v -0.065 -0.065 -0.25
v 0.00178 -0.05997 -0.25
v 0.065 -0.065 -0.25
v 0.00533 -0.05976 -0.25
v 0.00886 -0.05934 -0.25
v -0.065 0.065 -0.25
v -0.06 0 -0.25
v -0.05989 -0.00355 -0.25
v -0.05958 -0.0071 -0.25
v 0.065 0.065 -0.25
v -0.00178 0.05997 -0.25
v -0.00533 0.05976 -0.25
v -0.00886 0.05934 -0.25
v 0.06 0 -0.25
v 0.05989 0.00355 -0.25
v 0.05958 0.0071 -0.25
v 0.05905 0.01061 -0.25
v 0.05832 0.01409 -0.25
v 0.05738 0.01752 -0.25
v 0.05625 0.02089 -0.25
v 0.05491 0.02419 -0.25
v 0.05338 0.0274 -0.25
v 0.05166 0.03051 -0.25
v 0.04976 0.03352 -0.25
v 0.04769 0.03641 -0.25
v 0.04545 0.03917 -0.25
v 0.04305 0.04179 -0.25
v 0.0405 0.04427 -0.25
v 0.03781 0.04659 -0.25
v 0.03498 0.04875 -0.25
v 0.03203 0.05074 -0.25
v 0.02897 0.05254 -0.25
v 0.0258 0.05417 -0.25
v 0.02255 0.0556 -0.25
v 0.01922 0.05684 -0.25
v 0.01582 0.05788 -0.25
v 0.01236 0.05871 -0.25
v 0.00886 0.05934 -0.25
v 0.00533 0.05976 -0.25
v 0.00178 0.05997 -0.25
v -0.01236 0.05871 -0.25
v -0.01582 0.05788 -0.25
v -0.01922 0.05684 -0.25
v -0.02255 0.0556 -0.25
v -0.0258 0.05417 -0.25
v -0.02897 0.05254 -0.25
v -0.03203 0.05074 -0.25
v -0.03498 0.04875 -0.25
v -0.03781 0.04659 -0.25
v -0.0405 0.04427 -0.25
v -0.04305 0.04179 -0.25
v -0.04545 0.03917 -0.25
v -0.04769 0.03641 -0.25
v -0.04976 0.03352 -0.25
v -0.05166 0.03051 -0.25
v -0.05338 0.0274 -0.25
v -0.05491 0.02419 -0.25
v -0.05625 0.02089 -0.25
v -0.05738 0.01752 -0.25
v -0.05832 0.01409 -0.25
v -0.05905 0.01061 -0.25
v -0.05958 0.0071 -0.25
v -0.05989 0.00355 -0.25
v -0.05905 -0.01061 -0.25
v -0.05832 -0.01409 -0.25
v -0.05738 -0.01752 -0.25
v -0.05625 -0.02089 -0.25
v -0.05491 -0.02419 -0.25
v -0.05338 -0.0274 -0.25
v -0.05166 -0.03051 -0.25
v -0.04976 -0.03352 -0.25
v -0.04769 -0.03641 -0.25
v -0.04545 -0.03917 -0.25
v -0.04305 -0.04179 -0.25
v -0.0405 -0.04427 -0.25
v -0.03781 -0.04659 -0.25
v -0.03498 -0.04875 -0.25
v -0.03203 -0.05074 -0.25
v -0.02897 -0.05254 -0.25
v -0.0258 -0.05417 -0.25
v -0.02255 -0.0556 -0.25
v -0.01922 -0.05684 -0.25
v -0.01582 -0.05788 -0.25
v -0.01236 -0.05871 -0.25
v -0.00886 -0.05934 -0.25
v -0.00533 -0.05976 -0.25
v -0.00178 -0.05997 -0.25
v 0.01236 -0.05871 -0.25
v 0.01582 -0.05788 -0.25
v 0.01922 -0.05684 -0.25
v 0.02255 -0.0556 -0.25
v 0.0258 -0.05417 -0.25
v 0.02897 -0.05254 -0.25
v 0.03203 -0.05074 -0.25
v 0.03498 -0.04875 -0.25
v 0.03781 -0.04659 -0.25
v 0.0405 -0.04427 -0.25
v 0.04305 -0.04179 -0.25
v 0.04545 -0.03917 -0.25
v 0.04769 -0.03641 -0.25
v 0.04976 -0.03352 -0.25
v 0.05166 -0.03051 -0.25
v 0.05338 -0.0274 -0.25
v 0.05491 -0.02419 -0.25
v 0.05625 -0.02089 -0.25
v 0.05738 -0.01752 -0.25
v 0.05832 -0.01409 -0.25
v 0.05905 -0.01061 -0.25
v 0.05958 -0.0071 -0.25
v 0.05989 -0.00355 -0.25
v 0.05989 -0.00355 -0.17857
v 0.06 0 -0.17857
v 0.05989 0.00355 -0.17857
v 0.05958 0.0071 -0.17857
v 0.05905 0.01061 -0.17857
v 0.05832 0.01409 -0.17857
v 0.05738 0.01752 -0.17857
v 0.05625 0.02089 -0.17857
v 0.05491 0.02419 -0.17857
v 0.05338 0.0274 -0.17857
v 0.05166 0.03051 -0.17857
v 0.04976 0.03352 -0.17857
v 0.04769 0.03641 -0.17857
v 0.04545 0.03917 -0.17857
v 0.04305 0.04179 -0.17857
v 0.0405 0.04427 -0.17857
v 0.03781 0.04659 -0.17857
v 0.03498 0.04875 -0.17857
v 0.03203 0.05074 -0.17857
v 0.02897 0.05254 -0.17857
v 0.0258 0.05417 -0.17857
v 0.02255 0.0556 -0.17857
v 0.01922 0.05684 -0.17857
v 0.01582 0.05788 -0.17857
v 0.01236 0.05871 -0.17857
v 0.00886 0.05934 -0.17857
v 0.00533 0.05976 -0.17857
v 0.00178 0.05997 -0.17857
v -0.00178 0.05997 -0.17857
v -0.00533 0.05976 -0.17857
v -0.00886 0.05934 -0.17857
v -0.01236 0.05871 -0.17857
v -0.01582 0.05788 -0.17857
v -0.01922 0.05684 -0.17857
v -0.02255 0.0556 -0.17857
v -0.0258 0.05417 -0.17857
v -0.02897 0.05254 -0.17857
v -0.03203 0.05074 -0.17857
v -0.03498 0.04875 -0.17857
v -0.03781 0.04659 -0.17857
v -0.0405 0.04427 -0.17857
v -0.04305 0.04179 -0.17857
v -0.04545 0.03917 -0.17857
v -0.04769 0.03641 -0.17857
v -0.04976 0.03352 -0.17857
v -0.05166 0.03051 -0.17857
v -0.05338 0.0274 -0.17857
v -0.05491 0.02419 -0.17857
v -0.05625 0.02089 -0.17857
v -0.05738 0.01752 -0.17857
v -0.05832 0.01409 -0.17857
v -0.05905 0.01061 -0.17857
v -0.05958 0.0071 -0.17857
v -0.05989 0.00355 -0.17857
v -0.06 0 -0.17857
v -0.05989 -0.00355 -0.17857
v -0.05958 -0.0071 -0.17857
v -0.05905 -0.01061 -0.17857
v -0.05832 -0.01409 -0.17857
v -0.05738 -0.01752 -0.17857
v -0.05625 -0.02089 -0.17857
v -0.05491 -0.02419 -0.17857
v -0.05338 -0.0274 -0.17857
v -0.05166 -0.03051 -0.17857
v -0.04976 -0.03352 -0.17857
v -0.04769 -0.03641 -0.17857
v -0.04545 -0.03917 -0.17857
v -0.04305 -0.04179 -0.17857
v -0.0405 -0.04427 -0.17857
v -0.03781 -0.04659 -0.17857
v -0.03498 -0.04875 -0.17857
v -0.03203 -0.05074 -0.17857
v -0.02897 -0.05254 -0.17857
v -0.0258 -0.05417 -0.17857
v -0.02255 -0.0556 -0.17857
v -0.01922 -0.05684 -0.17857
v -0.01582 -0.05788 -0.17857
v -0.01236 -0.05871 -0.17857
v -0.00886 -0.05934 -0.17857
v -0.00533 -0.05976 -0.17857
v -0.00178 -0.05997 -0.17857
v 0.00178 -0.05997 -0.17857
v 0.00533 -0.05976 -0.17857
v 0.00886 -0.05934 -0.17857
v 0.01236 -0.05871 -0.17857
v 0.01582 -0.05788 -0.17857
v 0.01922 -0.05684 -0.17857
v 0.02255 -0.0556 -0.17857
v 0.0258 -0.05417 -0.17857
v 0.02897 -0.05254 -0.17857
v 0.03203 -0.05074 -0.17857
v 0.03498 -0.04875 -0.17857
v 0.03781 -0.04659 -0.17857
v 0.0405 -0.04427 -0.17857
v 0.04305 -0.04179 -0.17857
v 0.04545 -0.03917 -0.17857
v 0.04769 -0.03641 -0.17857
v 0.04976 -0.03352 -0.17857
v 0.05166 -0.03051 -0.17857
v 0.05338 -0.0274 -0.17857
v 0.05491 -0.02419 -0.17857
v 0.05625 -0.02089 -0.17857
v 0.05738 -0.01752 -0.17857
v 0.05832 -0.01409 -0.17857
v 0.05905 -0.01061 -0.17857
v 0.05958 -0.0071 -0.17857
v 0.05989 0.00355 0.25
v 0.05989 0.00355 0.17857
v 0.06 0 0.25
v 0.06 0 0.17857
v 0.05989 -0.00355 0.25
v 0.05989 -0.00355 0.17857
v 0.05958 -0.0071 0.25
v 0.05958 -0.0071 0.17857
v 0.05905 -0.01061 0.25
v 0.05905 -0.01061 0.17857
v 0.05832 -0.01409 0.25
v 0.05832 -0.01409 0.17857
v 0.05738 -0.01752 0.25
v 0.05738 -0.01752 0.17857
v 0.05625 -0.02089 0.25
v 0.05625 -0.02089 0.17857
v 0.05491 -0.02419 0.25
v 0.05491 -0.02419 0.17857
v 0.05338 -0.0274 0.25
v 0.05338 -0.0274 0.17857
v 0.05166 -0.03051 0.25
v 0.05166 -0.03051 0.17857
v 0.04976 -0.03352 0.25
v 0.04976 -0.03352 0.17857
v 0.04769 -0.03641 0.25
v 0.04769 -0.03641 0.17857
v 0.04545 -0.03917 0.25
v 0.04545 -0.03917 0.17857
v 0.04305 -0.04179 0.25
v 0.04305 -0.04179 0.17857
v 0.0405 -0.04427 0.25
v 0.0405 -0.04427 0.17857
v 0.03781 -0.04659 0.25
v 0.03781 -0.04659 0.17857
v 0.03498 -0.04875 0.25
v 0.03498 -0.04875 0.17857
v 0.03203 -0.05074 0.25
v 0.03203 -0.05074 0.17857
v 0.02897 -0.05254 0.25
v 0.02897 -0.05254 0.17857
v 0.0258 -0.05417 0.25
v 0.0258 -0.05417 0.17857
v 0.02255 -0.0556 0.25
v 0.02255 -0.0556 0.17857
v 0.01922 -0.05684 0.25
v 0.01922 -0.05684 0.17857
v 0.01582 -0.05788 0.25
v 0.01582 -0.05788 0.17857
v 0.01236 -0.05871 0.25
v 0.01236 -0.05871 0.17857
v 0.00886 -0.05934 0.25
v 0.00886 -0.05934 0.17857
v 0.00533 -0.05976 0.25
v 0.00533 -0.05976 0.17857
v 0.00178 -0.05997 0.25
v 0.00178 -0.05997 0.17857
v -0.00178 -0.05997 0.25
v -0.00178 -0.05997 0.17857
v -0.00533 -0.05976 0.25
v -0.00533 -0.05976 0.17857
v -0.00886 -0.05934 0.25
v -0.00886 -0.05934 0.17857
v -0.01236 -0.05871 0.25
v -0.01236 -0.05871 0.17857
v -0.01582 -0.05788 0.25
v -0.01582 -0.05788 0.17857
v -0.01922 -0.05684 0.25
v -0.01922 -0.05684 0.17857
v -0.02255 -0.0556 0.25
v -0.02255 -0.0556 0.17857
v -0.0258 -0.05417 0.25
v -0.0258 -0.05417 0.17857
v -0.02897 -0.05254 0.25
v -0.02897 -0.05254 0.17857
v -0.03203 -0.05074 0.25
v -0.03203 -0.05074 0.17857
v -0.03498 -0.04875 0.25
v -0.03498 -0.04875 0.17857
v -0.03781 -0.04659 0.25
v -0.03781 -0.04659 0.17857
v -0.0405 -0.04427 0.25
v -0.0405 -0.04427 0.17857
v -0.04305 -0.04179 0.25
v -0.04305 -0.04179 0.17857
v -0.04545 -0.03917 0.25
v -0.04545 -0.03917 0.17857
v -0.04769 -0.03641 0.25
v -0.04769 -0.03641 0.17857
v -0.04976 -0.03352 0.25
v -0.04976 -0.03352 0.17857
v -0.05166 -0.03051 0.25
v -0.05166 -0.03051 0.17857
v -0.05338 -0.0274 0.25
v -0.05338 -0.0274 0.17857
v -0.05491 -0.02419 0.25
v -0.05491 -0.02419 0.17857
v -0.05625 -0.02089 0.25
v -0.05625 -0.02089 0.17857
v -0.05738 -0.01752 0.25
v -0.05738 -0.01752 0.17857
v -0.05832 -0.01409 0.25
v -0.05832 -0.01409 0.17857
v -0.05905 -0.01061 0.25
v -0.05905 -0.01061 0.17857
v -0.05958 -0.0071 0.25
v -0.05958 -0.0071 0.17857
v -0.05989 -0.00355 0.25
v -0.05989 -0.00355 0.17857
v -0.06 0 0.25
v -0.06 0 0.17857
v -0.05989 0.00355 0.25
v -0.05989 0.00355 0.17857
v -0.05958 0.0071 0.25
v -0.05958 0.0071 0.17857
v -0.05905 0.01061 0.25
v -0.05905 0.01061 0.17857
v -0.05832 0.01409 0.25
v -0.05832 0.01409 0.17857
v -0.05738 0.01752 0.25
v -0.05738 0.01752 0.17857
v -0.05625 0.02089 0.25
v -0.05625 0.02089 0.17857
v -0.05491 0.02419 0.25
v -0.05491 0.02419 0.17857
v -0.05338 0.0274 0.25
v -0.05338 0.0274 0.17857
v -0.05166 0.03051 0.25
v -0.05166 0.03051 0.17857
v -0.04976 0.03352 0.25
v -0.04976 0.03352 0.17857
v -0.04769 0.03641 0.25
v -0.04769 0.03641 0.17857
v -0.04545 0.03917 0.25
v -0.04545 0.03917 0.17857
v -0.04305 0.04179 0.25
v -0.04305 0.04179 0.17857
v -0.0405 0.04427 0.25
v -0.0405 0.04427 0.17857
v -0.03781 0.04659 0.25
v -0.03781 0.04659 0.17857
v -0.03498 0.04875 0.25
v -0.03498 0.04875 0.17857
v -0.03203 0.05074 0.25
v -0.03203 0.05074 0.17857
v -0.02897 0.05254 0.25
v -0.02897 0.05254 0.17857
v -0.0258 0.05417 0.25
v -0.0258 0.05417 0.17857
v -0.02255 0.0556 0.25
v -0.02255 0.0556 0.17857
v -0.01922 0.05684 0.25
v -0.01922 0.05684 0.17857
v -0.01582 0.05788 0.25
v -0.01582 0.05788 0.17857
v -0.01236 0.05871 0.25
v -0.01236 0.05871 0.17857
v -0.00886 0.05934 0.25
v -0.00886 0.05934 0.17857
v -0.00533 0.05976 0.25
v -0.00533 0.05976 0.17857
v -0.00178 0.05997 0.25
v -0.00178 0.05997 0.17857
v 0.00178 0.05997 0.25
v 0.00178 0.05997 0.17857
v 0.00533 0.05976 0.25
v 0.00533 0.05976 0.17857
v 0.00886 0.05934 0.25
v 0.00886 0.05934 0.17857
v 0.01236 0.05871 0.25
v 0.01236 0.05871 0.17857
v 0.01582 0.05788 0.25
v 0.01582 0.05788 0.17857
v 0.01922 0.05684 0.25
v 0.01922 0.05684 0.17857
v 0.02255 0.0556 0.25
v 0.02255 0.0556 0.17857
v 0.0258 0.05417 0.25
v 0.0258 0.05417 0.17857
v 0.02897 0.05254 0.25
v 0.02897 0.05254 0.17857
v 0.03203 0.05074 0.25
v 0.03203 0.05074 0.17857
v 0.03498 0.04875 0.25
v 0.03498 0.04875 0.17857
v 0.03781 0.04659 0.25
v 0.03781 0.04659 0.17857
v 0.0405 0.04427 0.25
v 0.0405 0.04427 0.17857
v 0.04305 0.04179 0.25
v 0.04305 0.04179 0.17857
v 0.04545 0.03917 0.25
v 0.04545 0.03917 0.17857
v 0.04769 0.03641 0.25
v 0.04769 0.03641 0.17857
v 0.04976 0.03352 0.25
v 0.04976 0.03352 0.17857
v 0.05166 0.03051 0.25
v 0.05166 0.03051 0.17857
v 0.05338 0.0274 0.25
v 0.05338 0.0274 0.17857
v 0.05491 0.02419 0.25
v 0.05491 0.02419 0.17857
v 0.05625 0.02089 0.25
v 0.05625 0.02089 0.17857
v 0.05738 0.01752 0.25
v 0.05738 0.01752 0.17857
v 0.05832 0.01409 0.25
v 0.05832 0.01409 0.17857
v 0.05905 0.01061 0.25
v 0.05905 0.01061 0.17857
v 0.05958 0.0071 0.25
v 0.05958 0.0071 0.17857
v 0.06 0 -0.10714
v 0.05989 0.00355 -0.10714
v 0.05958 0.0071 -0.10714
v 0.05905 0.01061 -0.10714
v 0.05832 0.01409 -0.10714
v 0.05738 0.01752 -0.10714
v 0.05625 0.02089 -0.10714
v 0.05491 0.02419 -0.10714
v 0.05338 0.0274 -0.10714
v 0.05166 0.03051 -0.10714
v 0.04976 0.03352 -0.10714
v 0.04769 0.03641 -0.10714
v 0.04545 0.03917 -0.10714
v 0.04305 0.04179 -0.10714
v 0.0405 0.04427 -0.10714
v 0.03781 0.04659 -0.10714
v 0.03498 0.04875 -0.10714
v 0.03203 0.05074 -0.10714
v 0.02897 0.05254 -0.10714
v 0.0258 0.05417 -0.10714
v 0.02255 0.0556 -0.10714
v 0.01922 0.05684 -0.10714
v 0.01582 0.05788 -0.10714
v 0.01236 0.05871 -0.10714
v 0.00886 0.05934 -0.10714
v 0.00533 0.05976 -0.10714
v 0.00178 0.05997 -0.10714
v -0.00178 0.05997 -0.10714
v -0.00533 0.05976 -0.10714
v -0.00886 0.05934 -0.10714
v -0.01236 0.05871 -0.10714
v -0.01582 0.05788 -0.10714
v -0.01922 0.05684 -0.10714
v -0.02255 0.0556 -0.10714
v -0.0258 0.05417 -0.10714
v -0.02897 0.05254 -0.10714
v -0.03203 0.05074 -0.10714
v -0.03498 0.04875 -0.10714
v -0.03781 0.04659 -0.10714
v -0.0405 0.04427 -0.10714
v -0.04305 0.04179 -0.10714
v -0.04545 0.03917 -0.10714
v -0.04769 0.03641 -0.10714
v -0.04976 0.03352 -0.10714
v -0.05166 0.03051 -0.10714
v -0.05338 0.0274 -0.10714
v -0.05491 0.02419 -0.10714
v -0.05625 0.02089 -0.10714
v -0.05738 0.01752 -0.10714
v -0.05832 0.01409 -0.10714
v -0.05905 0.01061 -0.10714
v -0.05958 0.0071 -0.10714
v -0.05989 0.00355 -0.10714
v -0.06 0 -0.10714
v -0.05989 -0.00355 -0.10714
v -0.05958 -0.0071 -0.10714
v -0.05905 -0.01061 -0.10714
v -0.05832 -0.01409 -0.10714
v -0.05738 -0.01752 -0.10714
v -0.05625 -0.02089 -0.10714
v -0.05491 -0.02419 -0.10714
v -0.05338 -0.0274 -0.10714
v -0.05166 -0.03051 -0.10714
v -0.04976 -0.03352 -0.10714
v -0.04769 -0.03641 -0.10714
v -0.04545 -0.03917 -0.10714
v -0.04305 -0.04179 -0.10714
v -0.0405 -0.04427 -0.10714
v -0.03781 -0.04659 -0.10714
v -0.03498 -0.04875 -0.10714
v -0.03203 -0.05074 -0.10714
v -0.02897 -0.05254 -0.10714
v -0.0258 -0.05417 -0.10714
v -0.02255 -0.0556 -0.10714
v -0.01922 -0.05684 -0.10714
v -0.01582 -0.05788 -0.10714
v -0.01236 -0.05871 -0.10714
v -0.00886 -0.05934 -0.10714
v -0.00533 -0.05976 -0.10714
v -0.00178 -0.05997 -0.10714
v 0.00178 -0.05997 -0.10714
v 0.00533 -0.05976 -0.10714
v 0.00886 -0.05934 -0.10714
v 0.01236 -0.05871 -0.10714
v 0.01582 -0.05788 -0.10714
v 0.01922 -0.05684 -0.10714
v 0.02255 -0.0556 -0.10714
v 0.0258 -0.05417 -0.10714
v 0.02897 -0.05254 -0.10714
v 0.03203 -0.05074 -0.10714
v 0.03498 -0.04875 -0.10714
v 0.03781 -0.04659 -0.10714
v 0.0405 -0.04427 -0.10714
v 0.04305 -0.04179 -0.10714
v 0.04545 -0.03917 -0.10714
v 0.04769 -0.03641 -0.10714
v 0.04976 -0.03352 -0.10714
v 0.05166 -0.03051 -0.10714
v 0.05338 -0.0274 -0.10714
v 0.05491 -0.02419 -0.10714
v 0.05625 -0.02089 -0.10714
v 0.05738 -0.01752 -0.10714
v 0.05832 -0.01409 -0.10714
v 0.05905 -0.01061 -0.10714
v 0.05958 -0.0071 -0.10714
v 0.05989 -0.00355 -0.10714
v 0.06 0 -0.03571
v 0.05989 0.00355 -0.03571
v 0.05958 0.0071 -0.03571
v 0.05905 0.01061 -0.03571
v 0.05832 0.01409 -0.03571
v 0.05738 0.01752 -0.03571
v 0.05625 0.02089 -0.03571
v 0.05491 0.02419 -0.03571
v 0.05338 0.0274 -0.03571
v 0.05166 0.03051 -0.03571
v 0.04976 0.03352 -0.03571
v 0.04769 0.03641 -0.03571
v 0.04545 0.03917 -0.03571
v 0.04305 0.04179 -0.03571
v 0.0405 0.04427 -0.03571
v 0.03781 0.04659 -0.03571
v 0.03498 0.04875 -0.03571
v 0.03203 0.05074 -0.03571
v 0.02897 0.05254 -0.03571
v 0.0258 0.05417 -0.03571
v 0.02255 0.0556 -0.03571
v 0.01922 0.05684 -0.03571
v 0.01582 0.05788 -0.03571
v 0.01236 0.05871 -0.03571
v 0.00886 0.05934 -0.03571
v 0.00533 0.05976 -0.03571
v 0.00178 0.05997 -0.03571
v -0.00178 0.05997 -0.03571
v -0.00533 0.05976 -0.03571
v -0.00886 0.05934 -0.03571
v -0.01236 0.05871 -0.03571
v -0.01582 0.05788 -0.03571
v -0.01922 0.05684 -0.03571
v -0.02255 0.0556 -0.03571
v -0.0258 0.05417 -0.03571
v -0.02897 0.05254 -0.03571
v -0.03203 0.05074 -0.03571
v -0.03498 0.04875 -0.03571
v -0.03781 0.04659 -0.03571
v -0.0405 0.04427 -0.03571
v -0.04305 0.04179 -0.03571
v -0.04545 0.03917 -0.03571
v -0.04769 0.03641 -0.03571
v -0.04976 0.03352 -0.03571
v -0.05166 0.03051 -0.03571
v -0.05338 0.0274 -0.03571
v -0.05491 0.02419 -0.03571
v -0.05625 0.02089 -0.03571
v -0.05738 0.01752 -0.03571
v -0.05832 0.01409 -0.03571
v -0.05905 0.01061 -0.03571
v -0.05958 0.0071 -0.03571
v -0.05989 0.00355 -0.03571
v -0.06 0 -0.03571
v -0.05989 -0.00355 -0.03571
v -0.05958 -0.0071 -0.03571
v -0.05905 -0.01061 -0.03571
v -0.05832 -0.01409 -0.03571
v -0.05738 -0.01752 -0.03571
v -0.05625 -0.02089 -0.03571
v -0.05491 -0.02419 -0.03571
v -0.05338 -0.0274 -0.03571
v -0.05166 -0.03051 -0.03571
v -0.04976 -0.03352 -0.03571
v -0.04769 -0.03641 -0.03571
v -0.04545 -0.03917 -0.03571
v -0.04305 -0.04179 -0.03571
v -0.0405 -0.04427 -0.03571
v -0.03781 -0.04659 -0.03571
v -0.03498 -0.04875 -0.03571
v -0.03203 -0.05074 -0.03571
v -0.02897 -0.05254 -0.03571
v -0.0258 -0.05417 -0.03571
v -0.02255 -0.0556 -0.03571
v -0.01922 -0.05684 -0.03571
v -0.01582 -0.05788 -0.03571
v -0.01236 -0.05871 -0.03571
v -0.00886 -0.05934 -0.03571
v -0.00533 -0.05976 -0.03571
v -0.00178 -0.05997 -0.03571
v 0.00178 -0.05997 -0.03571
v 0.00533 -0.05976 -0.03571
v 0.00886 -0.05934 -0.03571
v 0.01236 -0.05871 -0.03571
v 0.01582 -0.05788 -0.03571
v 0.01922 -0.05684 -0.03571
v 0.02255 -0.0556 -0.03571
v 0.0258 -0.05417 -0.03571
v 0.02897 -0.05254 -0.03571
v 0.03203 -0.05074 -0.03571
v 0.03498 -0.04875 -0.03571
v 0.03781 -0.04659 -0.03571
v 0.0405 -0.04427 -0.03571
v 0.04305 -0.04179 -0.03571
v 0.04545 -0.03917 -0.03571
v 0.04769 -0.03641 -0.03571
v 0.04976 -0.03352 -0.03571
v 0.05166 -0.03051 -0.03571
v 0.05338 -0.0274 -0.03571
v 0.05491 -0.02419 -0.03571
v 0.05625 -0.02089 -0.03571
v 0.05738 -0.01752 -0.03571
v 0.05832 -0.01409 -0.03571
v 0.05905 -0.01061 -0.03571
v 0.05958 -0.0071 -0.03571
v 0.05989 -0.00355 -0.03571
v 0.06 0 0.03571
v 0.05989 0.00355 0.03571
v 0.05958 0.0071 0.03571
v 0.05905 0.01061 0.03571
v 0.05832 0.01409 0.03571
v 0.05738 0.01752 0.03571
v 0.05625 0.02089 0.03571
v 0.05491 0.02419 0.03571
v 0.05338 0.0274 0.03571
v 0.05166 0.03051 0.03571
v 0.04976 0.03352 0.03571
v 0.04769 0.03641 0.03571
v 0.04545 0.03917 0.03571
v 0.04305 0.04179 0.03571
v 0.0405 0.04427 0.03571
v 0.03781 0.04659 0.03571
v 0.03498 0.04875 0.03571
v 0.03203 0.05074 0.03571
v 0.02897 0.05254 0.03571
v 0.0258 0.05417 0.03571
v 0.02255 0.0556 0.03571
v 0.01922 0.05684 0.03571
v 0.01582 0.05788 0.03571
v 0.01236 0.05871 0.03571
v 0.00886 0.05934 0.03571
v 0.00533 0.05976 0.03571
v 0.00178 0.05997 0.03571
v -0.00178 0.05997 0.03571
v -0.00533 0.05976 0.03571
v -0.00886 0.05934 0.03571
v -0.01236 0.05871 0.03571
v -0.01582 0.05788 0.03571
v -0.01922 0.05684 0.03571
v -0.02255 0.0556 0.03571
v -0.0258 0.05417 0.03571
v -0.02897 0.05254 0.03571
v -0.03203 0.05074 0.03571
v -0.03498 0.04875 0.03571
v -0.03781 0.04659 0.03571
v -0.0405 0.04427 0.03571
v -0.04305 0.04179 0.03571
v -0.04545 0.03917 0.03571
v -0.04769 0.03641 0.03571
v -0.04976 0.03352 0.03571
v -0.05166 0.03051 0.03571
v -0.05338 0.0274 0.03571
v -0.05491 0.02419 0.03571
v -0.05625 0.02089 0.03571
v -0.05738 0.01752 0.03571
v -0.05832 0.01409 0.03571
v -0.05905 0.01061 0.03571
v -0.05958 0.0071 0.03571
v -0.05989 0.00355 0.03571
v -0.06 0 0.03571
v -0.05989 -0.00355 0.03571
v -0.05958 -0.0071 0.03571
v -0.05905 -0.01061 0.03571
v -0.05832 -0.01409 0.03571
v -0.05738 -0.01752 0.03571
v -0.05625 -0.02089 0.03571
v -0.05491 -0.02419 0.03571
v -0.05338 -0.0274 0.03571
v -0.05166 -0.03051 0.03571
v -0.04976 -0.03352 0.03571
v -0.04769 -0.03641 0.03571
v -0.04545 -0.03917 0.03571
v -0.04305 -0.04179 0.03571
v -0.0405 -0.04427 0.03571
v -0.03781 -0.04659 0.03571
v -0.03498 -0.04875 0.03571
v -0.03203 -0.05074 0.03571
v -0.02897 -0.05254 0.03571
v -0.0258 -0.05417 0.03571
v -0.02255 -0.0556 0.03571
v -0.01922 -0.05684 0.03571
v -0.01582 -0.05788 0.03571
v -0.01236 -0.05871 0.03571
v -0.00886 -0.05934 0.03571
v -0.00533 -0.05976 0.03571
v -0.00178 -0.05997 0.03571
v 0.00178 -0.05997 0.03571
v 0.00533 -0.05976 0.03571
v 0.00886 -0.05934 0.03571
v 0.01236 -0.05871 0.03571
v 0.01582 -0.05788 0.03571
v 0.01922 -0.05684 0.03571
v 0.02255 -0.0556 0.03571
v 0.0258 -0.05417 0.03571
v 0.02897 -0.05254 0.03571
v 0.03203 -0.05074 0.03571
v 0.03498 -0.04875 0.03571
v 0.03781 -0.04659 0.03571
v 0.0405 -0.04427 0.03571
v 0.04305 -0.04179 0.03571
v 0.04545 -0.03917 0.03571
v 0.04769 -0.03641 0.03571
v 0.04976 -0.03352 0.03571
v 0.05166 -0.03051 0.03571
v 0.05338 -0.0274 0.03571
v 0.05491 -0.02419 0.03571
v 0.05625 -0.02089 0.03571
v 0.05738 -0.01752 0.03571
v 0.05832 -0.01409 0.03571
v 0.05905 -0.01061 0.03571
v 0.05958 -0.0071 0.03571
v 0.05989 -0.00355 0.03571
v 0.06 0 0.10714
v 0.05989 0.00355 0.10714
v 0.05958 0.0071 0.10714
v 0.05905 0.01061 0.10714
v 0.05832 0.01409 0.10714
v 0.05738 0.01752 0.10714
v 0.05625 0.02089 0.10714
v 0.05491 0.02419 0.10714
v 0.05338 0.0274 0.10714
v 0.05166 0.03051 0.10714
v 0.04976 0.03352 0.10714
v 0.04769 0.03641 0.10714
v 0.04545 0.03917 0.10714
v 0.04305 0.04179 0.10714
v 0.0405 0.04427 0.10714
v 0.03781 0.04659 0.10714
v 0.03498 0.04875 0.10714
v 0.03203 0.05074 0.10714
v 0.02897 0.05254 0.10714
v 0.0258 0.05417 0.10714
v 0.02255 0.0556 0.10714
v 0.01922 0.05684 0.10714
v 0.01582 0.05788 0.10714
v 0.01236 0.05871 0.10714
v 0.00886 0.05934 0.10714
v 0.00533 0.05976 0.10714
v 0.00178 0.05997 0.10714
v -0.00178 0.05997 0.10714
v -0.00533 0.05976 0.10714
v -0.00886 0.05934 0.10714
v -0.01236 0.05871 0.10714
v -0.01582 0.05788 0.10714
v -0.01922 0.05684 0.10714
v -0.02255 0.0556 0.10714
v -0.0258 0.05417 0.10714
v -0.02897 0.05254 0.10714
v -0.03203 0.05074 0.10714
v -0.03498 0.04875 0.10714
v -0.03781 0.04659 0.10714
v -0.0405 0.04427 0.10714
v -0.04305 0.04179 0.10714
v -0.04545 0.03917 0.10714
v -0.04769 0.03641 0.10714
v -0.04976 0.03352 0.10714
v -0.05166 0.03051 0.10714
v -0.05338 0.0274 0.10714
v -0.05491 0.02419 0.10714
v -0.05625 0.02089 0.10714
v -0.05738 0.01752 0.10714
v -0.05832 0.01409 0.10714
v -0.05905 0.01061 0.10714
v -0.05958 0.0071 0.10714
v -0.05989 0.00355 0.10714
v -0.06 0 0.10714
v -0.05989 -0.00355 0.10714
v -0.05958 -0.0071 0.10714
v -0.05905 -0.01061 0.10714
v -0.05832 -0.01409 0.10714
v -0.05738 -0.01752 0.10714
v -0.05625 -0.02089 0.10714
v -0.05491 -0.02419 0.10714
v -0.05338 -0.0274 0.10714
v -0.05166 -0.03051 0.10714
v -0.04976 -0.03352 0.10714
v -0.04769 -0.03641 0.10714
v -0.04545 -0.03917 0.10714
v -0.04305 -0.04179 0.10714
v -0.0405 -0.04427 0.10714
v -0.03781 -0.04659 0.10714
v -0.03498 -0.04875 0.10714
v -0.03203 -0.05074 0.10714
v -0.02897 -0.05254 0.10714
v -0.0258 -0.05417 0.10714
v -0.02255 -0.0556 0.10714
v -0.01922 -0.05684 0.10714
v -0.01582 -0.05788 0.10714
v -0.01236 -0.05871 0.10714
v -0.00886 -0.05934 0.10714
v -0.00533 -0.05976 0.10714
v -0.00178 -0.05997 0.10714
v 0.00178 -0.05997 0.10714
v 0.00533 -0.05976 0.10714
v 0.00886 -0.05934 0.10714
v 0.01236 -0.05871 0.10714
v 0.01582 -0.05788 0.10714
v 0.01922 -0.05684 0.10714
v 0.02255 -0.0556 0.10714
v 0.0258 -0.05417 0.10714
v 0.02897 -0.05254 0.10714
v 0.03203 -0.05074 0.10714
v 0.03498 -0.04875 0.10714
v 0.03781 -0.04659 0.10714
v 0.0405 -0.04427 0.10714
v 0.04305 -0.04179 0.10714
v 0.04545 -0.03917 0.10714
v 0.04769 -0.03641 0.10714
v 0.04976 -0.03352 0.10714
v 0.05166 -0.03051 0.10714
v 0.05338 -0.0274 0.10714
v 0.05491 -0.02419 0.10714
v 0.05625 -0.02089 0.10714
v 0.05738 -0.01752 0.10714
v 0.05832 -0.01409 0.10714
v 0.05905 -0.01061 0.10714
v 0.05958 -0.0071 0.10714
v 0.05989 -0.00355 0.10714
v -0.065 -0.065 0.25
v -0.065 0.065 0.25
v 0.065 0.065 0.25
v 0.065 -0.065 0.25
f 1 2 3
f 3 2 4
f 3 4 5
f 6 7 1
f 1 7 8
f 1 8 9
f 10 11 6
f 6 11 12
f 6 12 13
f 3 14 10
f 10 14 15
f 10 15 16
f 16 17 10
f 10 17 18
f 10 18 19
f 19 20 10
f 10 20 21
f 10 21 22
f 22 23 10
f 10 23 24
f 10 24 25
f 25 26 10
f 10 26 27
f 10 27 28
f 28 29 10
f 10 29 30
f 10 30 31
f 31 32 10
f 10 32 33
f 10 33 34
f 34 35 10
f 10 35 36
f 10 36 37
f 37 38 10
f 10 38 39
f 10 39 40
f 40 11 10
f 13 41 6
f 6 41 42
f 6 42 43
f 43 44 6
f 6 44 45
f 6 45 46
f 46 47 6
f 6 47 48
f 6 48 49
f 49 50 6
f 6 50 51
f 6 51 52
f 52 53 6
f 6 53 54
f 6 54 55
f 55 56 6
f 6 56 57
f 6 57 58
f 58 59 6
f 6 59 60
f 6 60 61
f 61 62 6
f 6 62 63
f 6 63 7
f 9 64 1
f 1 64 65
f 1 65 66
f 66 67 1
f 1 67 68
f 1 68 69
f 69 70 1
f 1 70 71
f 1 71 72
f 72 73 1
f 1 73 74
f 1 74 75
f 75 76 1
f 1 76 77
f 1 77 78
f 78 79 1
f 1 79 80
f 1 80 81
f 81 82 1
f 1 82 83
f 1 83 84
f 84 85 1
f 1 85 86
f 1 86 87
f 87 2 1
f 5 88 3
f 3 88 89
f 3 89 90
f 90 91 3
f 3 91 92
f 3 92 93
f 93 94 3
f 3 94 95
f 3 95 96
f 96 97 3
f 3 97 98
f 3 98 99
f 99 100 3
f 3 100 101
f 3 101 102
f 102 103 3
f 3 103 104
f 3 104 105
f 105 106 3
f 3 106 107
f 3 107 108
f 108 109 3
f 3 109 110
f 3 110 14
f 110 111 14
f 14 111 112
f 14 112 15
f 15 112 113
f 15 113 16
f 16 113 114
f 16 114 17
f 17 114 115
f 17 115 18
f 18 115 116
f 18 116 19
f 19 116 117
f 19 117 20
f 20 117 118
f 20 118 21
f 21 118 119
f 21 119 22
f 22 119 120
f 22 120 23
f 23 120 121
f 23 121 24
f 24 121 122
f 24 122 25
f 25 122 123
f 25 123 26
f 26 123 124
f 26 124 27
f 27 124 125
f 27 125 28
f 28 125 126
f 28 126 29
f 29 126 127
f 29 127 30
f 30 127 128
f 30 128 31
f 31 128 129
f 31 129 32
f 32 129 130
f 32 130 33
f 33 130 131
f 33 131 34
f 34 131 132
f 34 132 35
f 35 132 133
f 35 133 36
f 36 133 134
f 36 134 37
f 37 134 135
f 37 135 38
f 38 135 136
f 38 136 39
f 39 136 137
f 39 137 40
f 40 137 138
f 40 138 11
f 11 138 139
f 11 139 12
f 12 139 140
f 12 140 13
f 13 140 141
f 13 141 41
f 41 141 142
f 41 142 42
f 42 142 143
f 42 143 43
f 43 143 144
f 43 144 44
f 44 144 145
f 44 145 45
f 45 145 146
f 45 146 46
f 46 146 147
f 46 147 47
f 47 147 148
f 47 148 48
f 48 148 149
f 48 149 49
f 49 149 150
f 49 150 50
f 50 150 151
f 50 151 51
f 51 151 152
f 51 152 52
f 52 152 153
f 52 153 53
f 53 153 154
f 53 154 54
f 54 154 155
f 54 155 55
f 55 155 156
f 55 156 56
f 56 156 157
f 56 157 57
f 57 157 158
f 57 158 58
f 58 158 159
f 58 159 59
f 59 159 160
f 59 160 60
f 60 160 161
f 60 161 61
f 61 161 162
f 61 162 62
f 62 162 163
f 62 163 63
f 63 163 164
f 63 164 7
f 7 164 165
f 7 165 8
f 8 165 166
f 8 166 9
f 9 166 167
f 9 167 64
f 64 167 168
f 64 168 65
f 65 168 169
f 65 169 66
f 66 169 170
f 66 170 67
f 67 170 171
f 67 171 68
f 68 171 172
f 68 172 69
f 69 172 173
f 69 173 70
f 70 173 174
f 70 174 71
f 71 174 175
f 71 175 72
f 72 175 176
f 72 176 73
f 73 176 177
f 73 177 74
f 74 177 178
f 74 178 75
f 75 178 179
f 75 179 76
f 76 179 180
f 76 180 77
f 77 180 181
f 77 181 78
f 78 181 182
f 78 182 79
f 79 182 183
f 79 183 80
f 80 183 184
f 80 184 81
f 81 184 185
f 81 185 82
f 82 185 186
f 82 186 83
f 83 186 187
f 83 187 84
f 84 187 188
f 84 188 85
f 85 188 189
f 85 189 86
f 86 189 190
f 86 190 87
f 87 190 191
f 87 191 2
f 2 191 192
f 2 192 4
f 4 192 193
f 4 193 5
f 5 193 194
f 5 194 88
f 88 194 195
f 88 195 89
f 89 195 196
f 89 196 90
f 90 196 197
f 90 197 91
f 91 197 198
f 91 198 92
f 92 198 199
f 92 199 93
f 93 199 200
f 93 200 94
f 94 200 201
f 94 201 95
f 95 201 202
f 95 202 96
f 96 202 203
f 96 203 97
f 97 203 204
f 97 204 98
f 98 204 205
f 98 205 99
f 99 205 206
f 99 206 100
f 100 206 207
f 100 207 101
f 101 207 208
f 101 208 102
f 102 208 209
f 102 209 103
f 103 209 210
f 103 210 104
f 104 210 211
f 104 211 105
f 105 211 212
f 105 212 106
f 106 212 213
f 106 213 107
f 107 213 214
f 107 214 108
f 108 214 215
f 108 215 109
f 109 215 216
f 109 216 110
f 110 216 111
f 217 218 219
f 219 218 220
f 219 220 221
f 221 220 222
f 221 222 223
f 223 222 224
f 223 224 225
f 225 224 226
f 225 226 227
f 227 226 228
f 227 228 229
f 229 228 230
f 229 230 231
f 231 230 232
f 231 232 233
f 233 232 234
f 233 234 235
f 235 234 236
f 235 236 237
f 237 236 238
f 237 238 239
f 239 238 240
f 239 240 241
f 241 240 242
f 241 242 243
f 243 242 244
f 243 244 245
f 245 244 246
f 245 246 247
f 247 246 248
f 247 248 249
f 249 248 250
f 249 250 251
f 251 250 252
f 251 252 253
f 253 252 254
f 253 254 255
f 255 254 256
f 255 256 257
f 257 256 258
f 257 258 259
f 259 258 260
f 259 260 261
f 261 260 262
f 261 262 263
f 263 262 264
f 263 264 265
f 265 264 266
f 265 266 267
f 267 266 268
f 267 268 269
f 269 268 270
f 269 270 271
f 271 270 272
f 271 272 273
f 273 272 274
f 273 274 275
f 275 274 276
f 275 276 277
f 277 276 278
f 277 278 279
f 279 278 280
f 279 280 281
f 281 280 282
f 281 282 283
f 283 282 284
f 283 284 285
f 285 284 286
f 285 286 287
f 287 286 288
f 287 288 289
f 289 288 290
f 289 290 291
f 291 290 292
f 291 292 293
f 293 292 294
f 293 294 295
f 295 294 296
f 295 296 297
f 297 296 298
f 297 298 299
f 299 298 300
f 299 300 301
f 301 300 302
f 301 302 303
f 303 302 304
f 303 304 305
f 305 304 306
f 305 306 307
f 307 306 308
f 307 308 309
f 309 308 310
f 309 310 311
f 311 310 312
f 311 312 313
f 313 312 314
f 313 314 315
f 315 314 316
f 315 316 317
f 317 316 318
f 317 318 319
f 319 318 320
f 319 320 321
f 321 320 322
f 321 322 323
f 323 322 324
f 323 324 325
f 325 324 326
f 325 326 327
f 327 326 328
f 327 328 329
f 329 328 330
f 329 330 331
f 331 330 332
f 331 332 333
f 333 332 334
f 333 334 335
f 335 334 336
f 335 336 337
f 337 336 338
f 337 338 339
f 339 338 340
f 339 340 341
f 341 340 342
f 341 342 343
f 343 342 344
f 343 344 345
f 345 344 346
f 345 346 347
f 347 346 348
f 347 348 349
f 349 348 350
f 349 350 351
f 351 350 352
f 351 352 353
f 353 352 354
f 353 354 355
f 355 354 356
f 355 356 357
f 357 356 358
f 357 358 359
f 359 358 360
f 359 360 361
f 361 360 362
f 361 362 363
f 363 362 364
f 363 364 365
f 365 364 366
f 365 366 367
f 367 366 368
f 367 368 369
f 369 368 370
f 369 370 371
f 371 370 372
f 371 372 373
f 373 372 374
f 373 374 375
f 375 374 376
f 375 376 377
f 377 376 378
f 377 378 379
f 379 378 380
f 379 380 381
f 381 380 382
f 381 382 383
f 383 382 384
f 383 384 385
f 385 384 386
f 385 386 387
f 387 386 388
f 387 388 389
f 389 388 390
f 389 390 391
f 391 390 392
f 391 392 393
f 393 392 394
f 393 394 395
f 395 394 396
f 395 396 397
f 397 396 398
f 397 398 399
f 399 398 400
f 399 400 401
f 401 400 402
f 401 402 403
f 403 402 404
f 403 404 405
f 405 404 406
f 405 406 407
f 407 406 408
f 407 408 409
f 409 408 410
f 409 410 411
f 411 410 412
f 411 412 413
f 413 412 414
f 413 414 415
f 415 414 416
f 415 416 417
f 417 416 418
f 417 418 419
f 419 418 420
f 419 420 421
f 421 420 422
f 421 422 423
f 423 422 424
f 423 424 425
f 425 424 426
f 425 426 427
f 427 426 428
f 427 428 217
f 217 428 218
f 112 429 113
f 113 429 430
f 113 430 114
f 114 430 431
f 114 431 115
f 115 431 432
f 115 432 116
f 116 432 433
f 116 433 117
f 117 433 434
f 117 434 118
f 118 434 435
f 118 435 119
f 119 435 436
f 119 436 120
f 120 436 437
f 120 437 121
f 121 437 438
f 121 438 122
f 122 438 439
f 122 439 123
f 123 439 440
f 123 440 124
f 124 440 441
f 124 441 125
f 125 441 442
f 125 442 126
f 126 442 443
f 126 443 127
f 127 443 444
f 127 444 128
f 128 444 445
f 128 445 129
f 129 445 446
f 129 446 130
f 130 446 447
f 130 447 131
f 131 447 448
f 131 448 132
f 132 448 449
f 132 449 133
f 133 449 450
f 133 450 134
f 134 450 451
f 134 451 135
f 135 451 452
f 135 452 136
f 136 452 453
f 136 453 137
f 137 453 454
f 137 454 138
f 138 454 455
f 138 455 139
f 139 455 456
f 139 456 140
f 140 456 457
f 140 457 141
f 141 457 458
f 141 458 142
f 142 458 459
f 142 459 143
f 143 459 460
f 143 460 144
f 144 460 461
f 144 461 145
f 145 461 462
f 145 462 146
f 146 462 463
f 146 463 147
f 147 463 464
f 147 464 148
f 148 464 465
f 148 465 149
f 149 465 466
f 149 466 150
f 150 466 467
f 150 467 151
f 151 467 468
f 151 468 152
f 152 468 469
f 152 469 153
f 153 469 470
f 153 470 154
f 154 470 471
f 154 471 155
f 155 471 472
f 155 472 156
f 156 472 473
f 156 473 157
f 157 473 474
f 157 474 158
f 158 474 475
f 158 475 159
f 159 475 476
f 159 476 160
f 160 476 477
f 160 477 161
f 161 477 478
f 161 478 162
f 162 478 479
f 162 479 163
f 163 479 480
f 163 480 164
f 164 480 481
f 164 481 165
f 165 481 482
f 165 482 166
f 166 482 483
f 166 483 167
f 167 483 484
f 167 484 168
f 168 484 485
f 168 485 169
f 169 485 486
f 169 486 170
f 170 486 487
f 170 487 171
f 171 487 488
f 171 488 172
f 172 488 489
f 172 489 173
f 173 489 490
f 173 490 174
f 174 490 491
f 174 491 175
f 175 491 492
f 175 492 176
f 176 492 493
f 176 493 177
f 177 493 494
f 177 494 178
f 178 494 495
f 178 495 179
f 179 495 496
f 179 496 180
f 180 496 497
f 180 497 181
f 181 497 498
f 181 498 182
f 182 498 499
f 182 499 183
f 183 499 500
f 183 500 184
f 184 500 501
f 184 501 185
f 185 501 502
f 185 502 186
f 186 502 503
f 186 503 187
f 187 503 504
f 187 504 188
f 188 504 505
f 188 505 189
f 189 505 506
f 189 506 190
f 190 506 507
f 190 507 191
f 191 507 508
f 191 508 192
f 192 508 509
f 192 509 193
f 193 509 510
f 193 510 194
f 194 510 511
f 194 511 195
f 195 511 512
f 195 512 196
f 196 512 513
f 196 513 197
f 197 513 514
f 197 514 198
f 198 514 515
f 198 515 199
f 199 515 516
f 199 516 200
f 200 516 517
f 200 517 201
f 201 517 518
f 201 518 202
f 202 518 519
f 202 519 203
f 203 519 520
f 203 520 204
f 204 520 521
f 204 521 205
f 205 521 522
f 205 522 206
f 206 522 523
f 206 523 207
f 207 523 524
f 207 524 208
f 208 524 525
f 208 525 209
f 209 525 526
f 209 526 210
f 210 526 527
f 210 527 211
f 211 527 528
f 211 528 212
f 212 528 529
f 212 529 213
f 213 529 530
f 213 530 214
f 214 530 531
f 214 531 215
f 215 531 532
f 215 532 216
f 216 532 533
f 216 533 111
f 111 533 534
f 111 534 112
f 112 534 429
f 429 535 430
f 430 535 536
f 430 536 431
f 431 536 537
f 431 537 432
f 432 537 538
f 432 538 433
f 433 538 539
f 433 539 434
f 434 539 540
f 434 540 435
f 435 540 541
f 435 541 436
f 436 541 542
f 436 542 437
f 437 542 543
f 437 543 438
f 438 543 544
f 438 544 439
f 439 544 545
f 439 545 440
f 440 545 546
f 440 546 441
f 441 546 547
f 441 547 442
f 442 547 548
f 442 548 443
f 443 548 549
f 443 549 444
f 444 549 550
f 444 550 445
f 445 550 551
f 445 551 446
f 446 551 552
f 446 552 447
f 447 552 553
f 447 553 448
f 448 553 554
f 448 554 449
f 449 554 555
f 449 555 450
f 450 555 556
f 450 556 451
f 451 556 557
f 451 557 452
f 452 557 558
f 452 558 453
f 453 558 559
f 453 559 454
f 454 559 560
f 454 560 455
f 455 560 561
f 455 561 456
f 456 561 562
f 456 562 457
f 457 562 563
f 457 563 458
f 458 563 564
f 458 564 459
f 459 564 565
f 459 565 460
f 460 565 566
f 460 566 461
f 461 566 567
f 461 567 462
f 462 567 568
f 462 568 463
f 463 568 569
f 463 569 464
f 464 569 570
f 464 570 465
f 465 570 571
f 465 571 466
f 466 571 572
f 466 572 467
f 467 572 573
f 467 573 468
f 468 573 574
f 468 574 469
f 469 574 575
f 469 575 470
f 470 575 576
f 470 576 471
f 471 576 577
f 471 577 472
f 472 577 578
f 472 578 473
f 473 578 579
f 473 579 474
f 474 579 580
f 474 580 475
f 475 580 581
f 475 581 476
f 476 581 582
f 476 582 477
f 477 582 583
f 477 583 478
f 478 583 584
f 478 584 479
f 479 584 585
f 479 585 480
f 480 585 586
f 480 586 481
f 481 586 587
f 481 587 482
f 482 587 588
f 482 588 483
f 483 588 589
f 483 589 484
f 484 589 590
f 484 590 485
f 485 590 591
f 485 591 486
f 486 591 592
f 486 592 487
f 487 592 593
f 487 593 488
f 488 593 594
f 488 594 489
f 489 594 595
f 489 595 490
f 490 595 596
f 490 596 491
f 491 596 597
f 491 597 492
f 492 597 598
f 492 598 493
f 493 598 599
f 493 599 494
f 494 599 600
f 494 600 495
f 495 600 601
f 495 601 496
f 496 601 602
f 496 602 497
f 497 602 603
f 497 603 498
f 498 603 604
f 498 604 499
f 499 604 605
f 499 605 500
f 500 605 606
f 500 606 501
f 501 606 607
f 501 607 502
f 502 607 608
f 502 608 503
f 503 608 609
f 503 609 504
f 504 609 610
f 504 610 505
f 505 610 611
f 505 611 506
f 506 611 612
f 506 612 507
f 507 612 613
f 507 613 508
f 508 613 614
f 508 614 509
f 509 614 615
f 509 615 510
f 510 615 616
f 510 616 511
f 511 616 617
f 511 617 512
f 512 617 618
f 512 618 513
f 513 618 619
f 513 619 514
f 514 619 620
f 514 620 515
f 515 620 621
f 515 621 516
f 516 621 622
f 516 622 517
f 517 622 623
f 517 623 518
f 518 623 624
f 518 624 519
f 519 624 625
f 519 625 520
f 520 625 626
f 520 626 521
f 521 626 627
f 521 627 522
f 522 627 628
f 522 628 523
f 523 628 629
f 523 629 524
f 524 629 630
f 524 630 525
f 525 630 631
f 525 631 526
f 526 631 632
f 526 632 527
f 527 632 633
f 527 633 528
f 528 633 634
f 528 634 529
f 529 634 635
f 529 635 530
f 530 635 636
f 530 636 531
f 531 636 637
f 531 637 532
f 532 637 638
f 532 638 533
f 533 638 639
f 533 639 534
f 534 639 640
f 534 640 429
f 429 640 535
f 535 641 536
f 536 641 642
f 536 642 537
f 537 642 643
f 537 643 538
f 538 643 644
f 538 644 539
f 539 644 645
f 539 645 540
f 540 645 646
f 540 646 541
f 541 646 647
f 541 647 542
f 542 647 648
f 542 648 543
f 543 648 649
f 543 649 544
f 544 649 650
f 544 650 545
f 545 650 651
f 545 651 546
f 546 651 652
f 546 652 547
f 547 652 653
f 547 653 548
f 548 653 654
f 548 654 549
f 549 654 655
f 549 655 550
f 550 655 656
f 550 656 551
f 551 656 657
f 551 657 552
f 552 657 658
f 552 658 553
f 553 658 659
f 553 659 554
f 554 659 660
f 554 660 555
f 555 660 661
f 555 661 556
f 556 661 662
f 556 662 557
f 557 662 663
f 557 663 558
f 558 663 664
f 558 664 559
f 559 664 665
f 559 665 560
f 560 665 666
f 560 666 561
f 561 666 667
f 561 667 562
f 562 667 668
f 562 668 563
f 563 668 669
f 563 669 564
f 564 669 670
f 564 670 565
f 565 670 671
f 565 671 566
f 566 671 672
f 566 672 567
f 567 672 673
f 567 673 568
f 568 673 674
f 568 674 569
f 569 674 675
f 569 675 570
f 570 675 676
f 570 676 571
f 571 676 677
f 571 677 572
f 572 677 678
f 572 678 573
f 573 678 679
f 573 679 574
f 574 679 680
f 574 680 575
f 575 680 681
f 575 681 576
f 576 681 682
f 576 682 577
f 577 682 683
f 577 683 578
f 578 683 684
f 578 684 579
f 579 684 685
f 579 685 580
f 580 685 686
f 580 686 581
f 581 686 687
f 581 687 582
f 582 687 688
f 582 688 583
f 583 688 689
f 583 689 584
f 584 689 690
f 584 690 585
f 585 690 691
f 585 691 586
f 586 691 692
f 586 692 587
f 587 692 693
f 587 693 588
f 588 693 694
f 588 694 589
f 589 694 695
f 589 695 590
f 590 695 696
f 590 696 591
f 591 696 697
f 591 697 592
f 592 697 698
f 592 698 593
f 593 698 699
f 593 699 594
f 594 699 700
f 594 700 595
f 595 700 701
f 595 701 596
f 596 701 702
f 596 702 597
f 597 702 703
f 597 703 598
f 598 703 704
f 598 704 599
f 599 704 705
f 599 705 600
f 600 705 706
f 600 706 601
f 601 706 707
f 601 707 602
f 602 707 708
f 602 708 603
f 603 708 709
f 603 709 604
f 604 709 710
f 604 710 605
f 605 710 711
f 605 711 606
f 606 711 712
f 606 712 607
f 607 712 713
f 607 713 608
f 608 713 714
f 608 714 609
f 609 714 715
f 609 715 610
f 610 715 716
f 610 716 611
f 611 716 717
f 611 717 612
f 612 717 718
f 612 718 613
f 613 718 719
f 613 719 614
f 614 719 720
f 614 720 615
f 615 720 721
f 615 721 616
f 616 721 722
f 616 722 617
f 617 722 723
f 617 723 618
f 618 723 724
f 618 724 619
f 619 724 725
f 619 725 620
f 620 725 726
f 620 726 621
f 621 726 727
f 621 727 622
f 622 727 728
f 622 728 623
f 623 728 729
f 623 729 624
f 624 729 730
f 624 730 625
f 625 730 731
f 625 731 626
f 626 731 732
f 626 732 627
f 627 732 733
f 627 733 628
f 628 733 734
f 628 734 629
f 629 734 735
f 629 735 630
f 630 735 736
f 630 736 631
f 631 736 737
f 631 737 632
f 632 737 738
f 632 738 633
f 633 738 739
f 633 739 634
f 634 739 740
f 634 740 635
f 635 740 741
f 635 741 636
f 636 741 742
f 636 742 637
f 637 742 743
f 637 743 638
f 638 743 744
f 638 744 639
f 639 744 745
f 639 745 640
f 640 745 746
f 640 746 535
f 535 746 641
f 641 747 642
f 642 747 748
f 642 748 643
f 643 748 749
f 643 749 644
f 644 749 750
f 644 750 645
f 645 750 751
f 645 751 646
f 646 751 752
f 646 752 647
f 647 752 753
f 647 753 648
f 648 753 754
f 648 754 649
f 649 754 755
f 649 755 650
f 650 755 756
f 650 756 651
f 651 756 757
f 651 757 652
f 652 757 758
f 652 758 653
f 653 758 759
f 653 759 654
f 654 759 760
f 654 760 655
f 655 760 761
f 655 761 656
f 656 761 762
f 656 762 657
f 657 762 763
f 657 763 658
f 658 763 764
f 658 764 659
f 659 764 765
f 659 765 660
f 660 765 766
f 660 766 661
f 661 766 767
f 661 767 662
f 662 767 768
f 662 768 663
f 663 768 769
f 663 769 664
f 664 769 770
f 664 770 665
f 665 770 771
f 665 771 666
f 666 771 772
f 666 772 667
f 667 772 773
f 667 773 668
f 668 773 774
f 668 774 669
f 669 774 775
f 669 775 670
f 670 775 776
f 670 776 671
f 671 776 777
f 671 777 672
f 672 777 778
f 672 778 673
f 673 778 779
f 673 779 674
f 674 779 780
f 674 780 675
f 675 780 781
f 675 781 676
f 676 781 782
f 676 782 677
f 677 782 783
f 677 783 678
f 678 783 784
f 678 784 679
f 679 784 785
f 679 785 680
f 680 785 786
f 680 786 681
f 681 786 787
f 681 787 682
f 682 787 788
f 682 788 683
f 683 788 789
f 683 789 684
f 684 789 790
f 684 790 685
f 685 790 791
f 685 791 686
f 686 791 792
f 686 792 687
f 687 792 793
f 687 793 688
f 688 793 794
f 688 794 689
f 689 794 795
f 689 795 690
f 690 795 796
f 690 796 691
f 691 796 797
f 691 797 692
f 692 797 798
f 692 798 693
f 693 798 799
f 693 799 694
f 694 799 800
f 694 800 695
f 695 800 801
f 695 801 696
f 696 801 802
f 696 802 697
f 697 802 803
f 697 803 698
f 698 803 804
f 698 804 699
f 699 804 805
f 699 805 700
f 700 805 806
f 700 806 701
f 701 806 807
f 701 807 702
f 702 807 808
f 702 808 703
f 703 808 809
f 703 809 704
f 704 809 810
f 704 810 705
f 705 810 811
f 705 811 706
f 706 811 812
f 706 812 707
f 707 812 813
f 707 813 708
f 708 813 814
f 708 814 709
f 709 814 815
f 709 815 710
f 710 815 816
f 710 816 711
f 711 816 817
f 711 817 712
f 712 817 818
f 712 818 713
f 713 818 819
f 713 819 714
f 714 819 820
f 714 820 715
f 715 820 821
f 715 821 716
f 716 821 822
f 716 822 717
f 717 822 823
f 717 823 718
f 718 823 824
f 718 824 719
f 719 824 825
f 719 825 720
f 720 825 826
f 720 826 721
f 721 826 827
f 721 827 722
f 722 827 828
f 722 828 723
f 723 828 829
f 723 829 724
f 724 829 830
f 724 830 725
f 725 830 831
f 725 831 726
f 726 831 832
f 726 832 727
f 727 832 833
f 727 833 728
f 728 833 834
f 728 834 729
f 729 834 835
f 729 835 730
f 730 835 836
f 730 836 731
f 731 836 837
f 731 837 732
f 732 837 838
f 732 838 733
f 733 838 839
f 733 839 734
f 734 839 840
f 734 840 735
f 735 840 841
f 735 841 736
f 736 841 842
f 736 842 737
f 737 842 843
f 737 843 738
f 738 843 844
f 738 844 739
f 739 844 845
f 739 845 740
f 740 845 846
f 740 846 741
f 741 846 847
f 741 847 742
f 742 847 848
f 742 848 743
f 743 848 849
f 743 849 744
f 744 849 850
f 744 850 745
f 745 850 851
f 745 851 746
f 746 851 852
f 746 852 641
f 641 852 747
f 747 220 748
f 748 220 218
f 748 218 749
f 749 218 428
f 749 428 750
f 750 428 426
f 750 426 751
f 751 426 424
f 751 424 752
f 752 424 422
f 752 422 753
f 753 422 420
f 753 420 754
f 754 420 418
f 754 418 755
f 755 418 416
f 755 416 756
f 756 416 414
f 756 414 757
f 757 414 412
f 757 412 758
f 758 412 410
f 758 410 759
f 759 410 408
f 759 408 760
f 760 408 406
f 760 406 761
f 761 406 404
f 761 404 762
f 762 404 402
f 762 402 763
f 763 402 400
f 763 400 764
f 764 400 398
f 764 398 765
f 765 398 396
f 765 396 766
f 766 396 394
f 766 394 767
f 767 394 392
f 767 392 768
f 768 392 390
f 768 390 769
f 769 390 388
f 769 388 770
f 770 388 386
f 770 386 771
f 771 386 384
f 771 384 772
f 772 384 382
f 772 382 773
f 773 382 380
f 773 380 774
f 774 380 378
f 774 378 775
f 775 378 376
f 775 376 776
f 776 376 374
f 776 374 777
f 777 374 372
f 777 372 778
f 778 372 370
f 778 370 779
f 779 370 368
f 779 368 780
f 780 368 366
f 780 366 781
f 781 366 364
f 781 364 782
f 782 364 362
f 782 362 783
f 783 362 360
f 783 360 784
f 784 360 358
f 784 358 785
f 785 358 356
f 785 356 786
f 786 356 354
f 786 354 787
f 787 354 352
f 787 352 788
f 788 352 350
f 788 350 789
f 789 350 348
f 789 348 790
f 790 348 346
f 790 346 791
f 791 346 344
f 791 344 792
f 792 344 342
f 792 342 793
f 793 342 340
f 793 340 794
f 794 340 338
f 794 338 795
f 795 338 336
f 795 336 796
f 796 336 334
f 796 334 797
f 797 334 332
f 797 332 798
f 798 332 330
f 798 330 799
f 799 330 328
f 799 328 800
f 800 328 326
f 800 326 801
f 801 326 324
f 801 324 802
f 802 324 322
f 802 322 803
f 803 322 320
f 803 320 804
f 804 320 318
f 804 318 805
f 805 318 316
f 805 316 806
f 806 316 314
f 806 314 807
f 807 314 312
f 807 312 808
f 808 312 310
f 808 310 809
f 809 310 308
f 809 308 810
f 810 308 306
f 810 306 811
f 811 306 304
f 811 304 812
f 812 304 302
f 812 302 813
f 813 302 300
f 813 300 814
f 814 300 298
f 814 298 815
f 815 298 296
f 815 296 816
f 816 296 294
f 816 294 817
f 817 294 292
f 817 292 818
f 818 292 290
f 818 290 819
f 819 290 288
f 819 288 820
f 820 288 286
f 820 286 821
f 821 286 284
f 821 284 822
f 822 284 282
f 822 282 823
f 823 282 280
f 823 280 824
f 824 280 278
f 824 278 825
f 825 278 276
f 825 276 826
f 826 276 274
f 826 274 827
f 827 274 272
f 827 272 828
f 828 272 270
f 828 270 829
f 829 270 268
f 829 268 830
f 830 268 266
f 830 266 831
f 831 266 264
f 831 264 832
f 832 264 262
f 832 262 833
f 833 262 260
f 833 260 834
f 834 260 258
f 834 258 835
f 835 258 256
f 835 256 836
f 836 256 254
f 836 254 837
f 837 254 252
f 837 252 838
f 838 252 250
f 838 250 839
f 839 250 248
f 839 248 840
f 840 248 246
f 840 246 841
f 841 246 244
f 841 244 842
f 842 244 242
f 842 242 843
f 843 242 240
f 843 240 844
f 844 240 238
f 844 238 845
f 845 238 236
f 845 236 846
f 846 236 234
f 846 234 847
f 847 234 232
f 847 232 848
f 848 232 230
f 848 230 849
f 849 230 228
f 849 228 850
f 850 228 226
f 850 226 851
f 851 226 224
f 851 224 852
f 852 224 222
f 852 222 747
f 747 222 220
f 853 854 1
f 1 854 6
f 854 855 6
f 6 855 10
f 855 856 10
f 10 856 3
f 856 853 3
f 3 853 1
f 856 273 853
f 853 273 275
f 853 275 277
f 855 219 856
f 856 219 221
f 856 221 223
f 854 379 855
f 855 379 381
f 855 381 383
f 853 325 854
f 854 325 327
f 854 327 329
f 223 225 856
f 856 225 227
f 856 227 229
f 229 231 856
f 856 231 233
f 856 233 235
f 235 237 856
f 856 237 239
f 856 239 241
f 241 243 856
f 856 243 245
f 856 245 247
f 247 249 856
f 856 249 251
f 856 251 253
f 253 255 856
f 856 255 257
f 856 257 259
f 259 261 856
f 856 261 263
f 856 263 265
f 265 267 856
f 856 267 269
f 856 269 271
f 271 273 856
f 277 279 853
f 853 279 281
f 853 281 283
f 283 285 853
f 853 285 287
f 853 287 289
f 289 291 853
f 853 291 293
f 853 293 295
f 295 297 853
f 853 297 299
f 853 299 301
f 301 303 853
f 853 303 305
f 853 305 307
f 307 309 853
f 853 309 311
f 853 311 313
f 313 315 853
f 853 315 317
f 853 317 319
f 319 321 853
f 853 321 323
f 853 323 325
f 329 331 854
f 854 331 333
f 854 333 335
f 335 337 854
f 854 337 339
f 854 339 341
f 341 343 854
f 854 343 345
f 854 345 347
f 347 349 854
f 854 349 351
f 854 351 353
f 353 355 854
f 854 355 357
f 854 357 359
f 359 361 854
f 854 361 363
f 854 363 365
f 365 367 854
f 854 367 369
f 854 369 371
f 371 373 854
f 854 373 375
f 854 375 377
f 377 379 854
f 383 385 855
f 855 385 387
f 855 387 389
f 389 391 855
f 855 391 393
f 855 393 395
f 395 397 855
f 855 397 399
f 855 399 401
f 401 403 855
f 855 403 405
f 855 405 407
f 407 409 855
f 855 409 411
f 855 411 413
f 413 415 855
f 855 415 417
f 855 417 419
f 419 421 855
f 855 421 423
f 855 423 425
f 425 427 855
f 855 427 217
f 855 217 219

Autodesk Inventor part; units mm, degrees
ref_plane "YZ Plane" through (0, 0, 0) normal (1, 0, 0) x (0, 1, 0)
ref_plane "XZ Plane" through (0, 0, 0) normal (0, 1, 0) x (-1, 0, 0)
ref_plane "XY Plane" through (0, 0, 0) normal (0, 0, 1) x (1, 0, 0)
sketch "Sketch1" plane through (0, 0, 0) normal (0, 0, 1) x (1, 0, 0)
  circle A0 centre (0, 0) radius 0.06
  line L0 (-0.065, 0.065) -> (0.065, 0.065)
  line L1 (0.065, 0.065) -> (0.065, -0.065)
  line L2 (0.065, -0.065) -> (-0.065, -0.065)
  line L3 (-0.065, -0.065) -> (-0.065, 0.065)
  line L4 (-0.065, 0.065) -> (0.065, -0.065) construction
  line L5 (0.065, 0.065) -> (-0.065, -0.065) construction
  dimension "d0" = 0.12
  dimension "d2" = 0.13
extrude "Extrusion1" add sketch "Sketch1" along normal mid plane 0.5
properties part number "beam_pipe"
